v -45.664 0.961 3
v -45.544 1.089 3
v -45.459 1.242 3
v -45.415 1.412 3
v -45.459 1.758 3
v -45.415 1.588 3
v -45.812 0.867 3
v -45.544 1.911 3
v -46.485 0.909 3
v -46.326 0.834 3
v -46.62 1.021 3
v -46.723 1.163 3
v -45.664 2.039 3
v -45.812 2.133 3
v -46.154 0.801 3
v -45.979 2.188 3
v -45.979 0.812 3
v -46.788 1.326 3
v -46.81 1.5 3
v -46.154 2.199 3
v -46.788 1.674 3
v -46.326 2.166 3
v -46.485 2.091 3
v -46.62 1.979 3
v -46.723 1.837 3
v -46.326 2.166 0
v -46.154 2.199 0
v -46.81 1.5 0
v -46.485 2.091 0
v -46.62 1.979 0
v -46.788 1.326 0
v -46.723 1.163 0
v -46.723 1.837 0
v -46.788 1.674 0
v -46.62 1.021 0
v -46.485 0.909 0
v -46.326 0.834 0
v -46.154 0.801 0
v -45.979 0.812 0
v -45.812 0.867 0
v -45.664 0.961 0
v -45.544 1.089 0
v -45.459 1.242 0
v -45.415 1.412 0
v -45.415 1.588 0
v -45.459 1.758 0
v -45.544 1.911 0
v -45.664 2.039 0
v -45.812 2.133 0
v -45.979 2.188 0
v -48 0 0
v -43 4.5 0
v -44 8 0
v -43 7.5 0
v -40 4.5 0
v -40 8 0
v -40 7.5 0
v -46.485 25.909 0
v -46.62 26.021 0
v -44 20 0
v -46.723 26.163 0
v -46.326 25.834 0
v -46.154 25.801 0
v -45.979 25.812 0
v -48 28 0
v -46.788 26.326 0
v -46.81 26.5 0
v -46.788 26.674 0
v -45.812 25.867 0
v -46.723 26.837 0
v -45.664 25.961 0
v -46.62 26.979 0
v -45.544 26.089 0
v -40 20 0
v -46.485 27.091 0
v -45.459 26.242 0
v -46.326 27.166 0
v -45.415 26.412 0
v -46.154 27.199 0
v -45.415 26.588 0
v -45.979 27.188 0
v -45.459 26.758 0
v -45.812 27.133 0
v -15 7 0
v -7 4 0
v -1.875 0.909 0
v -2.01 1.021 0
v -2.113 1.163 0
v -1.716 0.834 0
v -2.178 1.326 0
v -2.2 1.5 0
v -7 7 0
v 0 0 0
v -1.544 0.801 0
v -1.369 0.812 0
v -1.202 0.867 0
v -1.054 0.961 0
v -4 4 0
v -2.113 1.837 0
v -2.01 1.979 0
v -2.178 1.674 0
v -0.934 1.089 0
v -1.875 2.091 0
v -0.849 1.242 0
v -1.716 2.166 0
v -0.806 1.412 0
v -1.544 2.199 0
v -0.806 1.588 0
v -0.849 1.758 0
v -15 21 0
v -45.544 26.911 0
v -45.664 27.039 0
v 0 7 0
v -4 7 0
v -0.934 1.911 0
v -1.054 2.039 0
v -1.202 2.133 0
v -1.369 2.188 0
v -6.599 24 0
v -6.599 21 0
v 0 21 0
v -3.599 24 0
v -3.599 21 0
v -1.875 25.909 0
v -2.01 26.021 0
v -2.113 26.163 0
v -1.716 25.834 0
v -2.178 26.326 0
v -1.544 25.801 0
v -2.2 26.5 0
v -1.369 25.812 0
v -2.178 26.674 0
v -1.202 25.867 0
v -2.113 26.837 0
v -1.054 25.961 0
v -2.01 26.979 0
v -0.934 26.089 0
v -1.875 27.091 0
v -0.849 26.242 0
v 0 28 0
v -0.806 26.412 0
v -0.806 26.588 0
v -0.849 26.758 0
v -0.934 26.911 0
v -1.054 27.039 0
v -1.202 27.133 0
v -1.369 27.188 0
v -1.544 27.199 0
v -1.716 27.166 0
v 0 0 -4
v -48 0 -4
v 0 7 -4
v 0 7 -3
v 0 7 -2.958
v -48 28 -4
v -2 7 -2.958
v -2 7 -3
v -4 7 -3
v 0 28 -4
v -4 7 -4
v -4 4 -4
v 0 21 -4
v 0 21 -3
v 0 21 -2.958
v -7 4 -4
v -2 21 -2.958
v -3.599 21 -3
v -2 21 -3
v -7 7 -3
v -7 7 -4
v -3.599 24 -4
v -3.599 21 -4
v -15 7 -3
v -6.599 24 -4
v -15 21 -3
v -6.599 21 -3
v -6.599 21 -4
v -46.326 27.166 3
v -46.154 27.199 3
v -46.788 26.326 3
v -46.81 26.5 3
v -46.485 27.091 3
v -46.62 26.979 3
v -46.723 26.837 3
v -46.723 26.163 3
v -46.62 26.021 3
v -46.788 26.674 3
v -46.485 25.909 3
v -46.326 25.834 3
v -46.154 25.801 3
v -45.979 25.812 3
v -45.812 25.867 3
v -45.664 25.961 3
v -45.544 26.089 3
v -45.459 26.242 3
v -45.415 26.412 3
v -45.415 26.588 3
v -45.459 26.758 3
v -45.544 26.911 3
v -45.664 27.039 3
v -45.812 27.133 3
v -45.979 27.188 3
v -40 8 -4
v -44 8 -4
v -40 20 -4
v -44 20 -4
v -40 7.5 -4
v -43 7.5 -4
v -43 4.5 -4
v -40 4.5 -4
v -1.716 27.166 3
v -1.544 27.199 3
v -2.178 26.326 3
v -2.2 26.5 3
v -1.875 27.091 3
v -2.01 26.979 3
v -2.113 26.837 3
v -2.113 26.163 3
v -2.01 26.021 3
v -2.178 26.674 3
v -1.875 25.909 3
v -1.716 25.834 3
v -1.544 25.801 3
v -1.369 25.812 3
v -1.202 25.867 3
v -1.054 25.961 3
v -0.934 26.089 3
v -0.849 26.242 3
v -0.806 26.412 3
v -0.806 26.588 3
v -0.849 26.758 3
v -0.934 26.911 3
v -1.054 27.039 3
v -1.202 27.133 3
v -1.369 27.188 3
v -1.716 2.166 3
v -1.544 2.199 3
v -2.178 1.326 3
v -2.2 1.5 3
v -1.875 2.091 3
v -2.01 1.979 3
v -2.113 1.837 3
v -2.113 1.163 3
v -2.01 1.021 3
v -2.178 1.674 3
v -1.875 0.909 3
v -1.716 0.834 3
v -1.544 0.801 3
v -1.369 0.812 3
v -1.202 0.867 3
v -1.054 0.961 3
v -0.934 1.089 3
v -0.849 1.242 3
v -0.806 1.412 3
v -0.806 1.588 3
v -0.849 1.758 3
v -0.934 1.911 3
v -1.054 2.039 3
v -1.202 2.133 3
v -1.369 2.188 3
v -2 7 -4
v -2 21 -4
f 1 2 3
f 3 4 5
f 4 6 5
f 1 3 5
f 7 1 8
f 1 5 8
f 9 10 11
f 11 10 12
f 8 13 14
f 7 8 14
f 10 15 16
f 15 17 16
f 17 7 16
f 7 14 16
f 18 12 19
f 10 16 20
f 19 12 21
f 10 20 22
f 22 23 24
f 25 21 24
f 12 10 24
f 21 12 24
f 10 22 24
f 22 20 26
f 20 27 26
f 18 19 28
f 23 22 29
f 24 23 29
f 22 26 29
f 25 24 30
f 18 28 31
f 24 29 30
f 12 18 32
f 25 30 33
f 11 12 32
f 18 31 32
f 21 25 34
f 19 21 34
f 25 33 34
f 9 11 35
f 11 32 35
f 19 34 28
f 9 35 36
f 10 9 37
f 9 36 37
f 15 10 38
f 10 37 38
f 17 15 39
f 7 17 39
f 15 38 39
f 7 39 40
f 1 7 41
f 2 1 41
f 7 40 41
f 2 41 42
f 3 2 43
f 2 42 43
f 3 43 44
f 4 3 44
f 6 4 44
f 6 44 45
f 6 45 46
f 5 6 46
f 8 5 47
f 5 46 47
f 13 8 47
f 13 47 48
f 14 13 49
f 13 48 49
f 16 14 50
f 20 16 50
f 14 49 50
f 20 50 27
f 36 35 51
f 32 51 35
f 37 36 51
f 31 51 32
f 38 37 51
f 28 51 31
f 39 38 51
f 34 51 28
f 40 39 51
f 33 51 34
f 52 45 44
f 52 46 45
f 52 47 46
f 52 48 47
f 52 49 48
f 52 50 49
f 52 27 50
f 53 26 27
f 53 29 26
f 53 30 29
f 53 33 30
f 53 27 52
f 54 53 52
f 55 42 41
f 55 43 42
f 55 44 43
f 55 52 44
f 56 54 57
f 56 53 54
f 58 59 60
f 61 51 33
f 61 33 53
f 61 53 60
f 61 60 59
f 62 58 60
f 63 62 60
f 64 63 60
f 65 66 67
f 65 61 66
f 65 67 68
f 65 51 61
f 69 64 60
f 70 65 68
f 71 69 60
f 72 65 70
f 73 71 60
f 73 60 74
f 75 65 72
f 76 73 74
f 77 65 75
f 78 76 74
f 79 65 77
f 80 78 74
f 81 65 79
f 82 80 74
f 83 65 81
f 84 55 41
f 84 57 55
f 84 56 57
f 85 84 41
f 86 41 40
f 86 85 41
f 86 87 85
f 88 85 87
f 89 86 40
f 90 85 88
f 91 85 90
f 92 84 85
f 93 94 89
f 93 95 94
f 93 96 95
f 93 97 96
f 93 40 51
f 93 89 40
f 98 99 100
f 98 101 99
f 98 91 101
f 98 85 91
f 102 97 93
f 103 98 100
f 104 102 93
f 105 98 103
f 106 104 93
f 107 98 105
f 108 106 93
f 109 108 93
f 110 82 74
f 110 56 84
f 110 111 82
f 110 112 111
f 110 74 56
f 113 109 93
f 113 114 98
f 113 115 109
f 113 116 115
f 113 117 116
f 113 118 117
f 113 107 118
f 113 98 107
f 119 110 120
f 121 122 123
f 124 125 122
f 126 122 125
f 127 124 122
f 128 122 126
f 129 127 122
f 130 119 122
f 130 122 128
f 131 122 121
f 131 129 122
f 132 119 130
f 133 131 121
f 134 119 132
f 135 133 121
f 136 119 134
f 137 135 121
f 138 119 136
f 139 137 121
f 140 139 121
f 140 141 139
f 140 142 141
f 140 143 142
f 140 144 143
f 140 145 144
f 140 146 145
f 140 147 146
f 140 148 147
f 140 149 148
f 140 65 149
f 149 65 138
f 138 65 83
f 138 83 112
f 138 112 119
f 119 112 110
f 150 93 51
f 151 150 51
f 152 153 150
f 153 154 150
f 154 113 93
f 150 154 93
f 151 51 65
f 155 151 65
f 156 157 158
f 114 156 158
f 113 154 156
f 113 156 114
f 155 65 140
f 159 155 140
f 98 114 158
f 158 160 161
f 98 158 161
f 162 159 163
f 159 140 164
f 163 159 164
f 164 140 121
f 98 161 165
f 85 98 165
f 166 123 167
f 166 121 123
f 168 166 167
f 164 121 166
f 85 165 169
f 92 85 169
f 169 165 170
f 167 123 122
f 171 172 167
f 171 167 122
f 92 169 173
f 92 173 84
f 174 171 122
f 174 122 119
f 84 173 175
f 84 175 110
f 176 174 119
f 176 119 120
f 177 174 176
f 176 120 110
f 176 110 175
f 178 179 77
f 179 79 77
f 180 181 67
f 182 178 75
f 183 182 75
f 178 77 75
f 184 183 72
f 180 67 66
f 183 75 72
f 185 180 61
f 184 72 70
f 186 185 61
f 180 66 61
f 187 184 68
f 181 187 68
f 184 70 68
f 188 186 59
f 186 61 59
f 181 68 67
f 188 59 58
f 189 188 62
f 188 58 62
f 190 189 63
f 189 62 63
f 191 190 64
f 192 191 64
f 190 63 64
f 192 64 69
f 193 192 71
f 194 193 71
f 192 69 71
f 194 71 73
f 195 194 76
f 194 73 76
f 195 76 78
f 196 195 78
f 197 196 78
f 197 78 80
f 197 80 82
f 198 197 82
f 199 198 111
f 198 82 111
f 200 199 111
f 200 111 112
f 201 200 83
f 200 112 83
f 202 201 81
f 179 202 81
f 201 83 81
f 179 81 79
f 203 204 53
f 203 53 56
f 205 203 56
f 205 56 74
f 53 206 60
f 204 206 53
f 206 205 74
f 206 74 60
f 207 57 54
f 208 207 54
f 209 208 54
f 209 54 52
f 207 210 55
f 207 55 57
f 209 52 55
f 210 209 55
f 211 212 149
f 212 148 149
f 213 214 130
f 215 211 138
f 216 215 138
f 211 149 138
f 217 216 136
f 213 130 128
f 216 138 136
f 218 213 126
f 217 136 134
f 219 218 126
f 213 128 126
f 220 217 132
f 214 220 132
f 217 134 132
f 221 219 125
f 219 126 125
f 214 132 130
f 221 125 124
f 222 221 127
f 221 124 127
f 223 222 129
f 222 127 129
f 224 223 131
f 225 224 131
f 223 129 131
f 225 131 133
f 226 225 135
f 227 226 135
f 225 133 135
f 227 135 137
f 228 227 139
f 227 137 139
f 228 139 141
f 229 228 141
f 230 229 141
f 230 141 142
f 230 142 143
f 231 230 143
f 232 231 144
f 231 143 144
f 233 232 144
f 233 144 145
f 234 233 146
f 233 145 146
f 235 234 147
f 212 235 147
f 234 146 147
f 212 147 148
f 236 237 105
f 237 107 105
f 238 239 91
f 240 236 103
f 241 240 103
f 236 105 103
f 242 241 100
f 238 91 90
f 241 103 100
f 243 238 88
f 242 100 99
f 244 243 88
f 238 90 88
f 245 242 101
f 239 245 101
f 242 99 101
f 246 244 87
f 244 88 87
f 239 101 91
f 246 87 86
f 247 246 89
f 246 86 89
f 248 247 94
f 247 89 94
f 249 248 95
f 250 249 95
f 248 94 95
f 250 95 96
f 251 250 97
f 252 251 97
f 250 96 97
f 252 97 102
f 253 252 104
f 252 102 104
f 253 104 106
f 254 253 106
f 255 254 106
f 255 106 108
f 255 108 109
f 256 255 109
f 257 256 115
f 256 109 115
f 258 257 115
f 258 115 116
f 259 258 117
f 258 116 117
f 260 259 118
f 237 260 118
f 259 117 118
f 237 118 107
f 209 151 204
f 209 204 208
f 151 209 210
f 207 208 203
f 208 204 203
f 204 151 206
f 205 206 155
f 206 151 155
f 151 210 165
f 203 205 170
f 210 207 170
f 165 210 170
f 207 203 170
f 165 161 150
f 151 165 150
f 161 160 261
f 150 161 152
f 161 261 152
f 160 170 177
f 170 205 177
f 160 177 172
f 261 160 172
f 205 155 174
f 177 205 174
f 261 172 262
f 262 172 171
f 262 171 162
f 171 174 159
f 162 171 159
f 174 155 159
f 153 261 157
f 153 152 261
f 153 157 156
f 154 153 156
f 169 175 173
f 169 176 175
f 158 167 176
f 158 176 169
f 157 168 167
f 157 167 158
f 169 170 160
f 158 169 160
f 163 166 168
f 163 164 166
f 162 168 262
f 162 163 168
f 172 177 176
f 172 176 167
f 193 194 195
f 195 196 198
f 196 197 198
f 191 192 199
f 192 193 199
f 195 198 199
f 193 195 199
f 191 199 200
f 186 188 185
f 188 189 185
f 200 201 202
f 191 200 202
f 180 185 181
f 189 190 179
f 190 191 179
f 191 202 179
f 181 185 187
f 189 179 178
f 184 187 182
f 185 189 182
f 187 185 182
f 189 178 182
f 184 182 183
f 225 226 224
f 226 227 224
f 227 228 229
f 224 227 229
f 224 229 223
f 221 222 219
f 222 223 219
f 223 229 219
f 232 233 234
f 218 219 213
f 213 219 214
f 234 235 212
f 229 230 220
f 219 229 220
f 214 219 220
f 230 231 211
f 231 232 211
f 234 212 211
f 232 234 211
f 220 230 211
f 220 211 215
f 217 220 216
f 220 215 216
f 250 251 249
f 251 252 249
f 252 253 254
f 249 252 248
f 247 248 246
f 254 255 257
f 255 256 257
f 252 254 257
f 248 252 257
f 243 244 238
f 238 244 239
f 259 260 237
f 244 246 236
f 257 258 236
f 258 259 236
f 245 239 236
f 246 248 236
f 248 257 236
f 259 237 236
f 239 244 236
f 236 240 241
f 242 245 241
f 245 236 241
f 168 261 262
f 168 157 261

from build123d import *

# Parameters (mm, degrees)
SKETCH_W               = 48
SKETCH_H               = 28
PAD_DEPTH              = 4
SKETCH001_W            = 14
SKETCH001_H            = 3
POCKET_DEPTH           = 15
SKETCH002_W            = 4
SKETCH002_H            = 12
SKETCH002_W_2          = 3
SKETCH002_H_2          = 3
POCKET001_DEPTH        = 4.001
SKETCH003_R            = 0.7
PAD001_DEPTH           = 3
FUSION_PLACEMENT_ANGLE = 180
SKETCH004_W            = 14
SKETCH004_H            = 1.055855
POCKET002_DEPTH        = 2


with BuildPart() as pocket001:
    # Sketch → Pad (new body)
    with BuildSketch(Plane.XY):
        with Locations((24, 14)):
            Rectangle(SKETCH_W, SKETCH_H)
    extrude(amount=PAD_DEPTH)

    # Sketch001 → Pocket (cut)
    with BuildSketch(Plane(origin=(0, 0, 0), x_dir=(0, -1, 0), z_dir=(-1, 0, 0))):
        with Locations((-14, 1.5)):
            Rectangle(SKETCH001_W, SKETCH001_H)
    extrude(amount=-POCKET_DEPTH, mode=Mode.SUBTRACT)

    # Sketch002 → Pocket001 (cut, through all)
    with BuildSketch(Plane.XY.offset(4)):
        with Locations((42, 14)):
            Rectangle(SKETCH002_W, SKETCH002_H)
        with Locations((41.5, 6)):
            Rectangle(SKETCH002_W_2, SKETCH002_H_2)
        with Locations((5.5, 5.5)):
            Rectangle(SKETCH002_W_2, SKETCH002_H_2)
        with Locations((5.098741, 22.5)):
            Rectangle(SKETCH002_W_2, SKETCH002_H_2)
    extrude(amount=-POCKET001_DEPTH, mode=Mode.SUBTRACT)


with BuildPart() as pocket002:
    # Pad001 base: copy of Pocket001
    add(pocket001.part)

    # Sketch003 → Pad001 (new body)
    with BuildSketch(Plane(origin=(0, 0, 0), x_dir=(1, 0, 0), z_dir=(0, 0, -1))):
        with Locations((1.5, -1.5)):
            Circle(SKETCH003_R)
        with Locations((1.5, -26.5)):
            Circle(SKETCH003_R)
        with Locations((46.109886, -26.5)):
            Circle(SKETCH003_R)
        with Locations((46.109886, -1.5)):
            Circle(SKETCH003_R)
    extrude(amount=PAD001_DEPTH)

    # Fusion: union Pocket001
    add(pocket001.part)


with BuildPart() as pocket002_1:
    # Fusion placement: moved
    add(pocket002.part.rotate(Axis((0, 0, 0), (0, 1, 0)), FUSION_PLACEMENT_ANGLE))

    # Sketch004 → Pocket002 (cut)
    with BuildSketch(Plane(origin=(0, 0, 0), x_dir=(0, -1, 0), z_dir=(1, 0, 0))):
        with Locations((-14, 3.486054)):
            Rectangle(SKETCH004_W, SKETCH004_H)
    extrude(amount=-POCKET002_DEPTH, mode=Mode.SUBTRACT)


solid = pocket002_1.part
